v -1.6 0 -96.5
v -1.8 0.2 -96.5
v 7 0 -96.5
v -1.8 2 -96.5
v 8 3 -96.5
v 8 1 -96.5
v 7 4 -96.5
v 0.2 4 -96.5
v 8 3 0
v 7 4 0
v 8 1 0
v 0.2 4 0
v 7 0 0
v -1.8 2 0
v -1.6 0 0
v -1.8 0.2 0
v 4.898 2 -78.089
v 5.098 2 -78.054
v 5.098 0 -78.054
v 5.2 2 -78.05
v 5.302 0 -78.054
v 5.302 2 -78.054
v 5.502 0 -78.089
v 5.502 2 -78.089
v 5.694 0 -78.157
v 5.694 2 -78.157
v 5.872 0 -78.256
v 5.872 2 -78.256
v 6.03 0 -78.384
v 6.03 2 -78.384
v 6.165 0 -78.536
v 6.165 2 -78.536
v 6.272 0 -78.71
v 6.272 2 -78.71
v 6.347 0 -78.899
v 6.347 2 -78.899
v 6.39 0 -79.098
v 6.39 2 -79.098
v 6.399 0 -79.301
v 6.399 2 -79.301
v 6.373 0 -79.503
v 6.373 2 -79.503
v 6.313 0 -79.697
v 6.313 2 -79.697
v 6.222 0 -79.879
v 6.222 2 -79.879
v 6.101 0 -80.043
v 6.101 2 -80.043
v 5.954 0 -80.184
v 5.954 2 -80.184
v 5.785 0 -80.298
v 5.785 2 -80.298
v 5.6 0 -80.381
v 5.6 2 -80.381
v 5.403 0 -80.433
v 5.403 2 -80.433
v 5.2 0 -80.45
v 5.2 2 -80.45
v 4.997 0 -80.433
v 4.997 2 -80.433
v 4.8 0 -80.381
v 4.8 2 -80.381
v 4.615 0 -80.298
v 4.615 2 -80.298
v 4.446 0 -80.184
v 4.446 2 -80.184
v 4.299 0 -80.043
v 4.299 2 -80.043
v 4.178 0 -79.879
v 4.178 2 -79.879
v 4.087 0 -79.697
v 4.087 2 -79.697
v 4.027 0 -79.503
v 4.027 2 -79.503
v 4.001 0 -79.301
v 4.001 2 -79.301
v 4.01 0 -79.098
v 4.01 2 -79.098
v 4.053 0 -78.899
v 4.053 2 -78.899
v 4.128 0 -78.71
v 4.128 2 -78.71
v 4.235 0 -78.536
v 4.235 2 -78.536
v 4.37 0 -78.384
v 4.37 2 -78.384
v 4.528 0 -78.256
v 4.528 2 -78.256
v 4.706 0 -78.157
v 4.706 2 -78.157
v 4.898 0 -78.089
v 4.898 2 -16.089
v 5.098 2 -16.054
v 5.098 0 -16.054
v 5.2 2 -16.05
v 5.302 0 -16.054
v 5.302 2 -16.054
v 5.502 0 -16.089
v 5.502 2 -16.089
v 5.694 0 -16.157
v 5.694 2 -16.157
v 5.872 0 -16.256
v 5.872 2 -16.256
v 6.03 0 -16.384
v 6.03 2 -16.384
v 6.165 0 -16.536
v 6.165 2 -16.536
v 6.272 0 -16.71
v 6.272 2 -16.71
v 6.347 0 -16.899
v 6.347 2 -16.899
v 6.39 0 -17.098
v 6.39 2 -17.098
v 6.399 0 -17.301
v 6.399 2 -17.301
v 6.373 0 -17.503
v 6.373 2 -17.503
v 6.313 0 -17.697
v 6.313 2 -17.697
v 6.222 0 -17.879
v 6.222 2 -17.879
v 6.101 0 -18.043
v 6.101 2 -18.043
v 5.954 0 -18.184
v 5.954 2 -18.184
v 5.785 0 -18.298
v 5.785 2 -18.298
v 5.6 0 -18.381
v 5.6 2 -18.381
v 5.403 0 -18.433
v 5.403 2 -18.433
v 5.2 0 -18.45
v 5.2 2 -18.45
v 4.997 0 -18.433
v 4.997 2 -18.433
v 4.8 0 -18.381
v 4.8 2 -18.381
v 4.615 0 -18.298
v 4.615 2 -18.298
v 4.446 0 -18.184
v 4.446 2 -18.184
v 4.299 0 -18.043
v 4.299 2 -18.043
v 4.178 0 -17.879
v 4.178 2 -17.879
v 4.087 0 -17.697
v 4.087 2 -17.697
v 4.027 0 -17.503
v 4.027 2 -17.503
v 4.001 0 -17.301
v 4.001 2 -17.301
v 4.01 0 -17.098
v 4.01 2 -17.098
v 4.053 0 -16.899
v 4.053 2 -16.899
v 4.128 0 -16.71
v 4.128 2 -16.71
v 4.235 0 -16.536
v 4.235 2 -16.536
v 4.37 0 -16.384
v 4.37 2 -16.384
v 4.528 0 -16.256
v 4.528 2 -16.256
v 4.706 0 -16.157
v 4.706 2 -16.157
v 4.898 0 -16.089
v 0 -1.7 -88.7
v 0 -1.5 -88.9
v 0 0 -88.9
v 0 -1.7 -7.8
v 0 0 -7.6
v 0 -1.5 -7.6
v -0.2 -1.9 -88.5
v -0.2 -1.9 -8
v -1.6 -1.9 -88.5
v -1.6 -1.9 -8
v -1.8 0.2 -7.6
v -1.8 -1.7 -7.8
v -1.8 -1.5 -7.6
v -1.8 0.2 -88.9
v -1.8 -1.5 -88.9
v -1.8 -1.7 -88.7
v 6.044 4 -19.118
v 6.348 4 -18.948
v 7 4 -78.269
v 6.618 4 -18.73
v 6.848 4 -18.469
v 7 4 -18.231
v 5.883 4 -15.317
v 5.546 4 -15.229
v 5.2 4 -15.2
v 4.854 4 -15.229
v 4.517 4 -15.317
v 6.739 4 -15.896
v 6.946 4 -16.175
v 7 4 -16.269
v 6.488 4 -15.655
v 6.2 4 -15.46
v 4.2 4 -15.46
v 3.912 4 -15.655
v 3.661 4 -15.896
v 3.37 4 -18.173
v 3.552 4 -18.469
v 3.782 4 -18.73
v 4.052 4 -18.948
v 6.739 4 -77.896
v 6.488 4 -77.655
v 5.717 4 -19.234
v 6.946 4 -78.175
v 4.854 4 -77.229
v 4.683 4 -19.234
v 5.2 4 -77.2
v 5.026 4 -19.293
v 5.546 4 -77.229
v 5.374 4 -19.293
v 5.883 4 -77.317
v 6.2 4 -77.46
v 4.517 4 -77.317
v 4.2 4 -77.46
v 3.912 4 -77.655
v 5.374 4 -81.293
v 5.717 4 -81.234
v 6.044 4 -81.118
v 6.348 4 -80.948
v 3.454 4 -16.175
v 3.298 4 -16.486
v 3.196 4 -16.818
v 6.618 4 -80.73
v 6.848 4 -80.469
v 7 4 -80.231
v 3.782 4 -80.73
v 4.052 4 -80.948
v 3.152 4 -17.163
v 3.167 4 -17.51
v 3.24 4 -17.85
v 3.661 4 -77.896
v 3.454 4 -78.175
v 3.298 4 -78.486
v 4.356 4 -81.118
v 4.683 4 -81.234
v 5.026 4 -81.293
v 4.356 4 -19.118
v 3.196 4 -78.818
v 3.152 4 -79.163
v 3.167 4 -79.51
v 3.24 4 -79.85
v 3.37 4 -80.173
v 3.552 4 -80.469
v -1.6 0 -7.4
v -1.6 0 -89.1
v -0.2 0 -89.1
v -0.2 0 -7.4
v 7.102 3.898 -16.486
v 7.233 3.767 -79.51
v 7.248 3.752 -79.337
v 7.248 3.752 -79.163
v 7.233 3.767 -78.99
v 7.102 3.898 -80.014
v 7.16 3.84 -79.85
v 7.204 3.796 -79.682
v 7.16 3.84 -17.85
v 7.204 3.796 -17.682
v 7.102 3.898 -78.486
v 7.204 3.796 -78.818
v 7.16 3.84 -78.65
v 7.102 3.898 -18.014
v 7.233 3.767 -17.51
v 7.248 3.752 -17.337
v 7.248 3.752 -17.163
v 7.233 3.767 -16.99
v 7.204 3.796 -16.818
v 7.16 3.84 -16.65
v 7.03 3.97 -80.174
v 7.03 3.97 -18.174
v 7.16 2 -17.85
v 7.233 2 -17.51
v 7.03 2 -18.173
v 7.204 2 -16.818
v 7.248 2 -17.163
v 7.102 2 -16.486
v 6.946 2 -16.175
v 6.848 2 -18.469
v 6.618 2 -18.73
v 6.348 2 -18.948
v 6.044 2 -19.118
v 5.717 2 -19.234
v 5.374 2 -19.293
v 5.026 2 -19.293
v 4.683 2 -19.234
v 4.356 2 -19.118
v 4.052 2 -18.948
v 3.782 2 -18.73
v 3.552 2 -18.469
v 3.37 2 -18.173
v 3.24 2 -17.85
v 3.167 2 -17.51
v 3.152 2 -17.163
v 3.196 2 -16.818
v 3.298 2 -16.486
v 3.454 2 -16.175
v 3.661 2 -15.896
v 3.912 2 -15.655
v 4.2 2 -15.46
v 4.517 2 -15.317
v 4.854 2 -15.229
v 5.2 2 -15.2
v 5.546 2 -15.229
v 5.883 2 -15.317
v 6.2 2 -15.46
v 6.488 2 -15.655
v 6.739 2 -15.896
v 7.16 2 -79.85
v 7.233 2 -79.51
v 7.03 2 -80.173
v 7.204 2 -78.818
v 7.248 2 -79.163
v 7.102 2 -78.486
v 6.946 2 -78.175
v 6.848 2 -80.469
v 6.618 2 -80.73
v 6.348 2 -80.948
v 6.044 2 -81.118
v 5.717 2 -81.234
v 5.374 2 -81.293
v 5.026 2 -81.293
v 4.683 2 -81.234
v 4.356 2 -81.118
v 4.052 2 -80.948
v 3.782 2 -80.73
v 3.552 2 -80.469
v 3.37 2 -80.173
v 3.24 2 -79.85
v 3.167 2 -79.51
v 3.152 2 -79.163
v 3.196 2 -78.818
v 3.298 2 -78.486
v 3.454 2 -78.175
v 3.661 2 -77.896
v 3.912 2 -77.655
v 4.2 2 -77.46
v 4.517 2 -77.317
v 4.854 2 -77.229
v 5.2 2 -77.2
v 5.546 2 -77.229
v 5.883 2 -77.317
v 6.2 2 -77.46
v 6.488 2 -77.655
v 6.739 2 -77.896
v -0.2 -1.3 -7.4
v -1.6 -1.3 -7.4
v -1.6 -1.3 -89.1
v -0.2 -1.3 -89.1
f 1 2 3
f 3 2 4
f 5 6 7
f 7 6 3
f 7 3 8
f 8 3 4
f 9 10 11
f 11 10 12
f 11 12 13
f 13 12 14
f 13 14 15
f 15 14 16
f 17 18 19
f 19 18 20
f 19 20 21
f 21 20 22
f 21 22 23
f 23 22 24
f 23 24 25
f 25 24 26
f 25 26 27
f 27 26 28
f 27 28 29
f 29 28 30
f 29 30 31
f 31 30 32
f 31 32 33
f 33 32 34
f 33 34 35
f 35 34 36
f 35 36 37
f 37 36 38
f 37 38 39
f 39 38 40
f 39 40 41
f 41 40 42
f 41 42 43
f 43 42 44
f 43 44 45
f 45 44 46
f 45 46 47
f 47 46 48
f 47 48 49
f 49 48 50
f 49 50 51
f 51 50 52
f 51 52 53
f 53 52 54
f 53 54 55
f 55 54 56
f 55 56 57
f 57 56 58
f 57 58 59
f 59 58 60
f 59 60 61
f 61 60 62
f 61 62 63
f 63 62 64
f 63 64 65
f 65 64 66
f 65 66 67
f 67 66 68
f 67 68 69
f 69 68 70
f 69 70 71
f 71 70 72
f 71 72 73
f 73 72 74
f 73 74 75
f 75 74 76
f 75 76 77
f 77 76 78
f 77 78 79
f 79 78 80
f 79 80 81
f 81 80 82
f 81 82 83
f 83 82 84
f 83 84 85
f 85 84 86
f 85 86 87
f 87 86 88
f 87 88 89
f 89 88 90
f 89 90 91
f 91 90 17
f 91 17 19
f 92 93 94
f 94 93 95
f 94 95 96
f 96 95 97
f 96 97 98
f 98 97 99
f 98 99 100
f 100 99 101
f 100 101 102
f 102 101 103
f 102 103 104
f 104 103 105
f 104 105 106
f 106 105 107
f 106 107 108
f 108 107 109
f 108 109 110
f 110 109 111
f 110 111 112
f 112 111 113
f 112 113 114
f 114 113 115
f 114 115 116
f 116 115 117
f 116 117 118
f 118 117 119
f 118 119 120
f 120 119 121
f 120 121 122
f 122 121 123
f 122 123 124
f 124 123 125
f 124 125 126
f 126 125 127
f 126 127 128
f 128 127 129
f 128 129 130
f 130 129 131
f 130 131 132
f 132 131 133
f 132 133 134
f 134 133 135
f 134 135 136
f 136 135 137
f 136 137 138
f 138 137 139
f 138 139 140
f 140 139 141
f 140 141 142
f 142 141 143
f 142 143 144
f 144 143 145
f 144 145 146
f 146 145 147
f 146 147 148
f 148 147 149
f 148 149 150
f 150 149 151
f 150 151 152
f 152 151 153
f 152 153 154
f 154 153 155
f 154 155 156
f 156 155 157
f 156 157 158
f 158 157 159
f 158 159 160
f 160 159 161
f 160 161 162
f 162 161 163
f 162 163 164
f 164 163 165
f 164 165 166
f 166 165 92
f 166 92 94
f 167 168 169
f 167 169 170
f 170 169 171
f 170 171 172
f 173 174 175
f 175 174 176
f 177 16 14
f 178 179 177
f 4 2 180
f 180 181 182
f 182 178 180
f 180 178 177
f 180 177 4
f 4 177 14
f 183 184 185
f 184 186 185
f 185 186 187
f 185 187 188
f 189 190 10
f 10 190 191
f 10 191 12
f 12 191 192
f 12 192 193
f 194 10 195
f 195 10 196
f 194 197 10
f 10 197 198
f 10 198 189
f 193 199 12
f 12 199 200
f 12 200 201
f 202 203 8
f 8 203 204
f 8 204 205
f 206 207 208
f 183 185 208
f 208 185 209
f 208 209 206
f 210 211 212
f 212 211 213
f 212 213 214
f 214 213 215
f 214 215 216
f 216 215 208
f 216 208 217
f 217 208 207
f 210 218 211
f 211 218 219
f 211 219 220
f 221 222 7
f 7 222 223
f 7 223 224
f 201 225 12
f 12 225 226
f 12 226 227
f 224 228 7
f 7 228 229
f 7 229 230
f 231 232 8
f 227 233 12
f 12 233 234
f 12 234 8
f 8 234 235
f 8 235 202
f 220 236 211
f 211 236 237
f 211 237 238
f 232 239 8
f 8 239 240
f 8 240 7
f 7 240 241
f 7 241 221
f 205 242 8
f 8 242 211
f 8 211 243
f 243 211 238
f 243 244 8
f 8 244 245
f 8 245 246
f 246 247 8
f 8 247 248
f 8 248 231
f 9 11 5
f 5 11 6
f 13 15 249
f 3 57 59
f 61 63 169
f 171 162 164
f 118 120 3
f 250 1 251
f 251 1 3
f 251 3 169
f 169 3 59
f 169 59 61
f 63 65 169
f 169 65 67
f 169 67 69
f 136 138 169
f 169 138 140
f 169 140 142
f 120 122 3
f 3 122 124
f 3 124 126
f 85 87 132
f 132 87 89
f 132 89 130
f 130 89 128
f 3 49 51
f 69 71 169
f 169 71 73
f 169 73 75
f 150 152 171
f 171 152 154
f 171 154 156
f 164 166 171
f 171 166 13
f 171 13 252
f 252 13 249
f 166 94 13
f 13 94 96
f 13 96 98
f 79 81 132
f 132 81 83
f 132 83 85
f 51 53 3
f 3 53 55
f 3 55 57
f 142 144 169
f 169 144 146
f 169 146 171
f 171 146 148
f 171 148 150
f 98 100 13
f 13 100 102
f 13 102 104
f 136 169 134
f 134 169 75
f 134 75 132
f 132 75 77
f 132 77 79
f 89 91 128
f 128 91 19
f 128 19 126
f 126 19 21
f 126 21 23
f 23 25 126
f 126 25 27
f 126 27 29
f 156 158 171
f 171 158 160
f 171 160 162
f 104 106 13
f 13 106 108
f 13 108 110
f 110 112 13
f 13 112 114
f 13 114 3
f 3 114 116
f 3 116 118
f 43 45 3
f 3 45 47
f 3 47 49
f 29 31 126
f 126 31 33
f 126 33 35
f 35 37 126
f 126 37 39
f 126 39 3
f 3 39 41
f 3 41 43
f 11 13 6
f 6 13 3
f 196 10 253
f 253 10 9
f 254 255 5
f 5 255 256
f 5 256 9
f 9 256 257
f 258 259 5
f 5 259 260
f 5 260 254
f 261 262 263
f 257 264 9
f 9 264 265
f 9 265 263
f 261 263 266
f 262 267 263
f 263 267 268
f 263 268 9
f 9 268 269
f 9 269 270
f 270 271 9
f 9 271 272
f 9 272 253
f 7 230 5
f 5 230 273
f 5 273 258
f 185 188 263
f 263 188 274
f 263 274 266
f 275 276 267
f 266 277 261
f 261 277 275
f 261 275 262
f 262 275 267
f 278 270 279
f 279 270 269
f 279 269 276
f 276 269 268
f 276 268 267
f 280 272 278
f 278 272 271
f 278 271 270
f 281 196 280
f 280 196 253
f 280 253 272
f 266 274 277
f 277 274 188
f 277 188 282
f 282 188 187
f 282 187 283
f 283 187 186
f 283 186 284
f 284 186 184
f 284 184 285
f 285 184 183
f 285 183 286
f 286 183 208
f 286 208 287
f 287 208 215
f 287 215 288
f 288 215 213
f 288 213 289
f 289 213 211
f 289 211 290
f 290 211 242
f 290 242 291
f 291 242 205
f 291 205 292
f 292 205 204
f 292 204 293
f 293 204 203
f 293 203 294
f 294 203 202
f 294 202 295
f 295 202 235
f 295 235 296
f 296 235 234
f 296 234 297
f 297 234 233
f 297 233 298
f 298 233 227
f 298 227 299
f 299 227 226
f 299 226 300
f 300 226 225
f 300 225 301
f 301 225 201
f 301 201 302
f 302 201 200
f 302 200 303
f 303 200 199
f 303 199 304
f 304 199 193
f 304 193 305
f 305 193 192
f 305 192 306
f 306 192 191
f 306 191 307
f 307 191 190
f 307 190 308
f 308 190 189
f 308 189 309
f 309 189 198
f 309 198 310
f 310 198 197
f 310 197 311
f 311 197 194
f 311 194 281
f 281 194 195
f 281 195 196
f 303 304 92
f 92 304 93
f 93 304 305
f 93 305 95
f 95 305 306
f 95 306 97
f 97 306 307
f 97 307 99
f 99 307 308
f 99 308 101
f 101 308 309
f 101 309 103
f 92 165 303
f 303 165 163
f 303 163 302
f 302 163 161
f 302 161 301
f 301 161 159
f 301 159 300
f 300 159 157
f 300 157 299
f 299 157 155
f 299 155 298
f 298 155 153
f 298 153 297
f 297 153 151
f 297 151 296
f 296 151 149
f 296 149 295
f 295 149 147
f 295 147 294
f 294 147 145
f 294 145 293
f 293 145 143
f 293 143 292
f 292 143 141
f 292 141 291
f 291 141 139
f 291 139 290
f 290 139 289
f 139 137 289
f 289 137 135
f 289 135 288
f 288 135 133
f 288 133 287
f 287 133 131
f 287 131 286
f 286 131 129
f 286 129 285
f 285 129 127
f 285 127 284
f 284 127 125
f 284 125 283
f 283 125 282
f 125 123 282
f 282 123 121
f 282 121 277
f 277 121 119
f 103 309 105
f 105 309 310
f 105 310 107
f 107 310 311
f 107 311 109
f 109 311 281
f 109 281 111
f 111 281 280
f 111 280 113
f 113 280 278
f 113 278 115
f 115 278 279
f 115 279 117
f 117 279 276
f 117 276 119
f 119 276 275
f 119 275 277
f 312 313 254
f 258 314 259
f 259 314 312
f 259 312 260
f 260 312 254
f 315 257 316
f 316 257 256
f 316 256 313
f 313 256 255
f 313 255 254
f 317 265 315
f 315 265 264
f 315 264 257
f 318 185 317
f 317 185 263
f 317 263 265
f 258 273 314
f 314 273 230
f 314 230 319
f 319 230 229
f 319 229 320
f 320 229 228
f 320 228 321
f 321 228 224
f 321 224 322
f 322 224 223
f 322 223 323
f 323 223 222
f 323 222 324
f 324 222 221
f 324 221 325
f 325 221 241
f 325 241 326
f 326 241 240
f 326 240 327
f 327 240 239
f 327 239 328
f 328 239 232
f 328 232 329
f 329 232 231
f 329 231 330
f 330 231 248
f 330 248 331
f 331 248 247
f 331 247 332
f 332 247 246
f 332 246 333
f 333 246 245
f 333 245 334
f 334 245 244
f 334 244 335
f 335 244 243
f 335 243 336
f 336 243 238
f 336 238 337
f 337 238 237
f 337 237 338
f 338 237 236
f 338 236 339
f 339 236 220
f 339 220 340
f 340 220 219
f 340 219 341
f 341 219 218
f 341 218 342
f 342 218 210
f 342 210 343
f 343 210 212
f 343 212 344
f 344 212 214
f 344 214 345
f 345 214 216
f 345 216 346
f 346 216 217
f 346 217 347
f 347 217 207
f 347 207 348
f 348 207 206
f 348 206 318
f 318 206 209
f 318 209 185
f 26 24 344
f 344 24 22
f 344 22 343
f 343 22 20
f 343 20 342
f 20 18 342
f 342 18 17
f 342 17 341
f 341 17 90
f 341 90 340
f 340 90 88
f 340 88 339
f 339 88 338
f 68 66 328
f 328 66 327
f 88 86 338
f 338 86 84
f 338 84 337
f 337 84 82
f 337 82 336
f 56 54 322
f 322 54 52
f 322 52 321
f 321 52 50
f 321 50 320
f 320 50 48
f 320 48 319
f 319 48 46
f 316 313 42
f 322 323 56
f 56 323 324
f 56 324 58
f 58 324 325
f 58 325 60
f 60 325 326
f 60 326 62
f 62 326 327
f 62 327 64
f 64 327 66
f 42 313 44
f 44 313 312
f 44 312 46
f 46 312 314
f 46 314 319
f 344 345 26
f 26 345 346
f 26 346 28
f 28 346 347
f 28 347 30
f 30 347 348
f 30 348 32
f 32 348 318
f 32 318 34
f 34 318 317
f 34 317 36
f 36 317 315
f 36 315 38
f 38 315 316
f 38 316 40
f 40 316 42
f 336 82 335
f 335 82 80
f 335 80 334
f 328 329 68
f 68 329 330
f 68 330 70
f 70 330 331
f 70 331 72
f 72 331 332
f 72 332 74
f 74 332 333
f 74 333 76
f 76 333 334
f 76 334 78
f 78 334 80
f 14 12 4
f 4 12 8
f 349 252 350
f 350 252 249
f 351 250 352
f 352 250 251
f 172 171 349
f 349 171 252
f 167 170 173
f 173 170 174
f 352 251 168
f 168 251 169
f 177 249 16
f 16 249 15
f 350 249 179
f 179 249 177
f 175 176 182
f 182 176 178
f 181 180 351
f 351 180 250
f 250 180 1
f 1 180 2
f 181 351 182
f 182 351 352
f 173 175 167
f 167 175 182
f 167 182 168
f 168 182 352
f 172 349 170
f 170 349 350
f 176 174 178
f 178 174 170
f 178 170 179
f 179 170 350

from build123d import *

# Parameters (mm, degrees)
EXTRUDE_1_DEPTH          = 96.5
CHAMFER_1_SIZE           = 1
CHAMFER_2_SIZE           = 1
CUT_EXTRUDE_1_DEPTH      = 98.010617976
CUT_EXTRUDE_1_DEPTH_BACK = 10
SKETCH_2_R               = 1.2
SKETCH_2_3_R             = 2.05
CUT_EXTRUDE_2_DEPTH      = 2
CHAMFER_3_SIZE           = 2
SKETCH_3_W               = 1.8
SKETCH_3_H               = 7.4
CUT_EXTRUDE_3_DEPTH      = 1.9
CHAMFER_4_SIZE           = 0.2
CHAMFER_5_SIZE           = 0.6


with BuildPart() as part:
    # 草图1 → 凸台-拉伸1 (new body)
    with BuildSketch(Plane.XY):
        Polygon((0, 0), (8, 0), (8, 4), (0, 4), (-1.8, 4), (-1.8, -1.9), (0, -1.9), align=None)
    extrude(amount=-EXTRUDE_1_DEPTH)

    # 倒角1
    chamfer_1_edges = [part.edges().sort_by_distance(p)[0] for p in [
        (8, 0, -48.25),
    ]]
    chamfer(chamfer_1_edges, length=CHAMFER_1_SIZE)

    # 倒角2
    chamfer_2_edges = [part.edges().sort_by_distance(p)[0] for p in [
        (8, 4, -48.25),
    ]]
    chamfer(chamfer_2_edges, length=CHAMFER_2_SIZE)

    # 草图2 → 切除-拉伸1 (cut, two sides: drawn at the far end of the back side and taken through both)
    with BuildSketch(Plane(origin=(0, 4, 0), x_dir=(1, 0, 0), z_dir=(0, 1, 0)).offset(-CUT_EXTRUDE_1_DEPTH_BACK)):
        with Locations(Location((5.2, 79.25, 0), (0, 0, 90))):
            Circle(SKETCH_2_R)
        with Locations(Location((5.2, 17.25, 0), (0, 0, 90))):
            Circle(SKETCH_2_R)
    extrude(amount=CUT_EXTRUDE_1_DEPTH + CUT_EXTRUDE_1_DEPTH_BACK, mode=Mode.SUBTRACT)

    # 草图2<3> → 切除-拉伸2 (cut)
    with BuildSketch(Plane(origin=(0, 4, 0), x_dir=(1, 0, 0), z_dir=(0, 1, 0))):
        with Locations(Location((5.2, 79.25, 0), (0, 0, 270))):
            Circle(SKETCH_2_3_R)
        with Locations(Location((5.2, 17.25, 0), (0, 0, 270))):
            Circle(SKETCH_2_3_R)
    extrude(amount=-CUT_EXTRUDE_2_DEPTH, mode=Mode.SUBTRACT)

    # 倒角3
    chamfer_3_edges = [part.edges().sort_by_distance(p)[0] for p in [
        (-1.8, 4, -48.25),
    ]]
    chamfer(chamfer_3_edges, length=CHAMFER_3_SIZE)

    # 草图3 → 切除-拉伸3 (cut)
    with BuildSketch(Plane.XZ.offset(1.9)):
        with Locations((-0.9, -92.8)):
            Rectangle(SKETCH_3_W, SKETCH_3_H)
        with Locations((-0.9, -3.7)):
            Rectangle(SKETCH_3_W, SKETCH_3_H)
    extrude(amount=-CUT_EXTRUDE_3_DEPTH, mode=Mode.SUBTRACT)

    # 倒角4
    chamfer_4_edges = [part.edges().sort_by_distance(p)[0] for p in [
        (-1.8, -1.9, -48.25),
        (0, -1.9, -48.25),
        (-1.8, -0.95, -89.1),
        (0, -0.95, -89.1),
        (-1.8, 0, -92.8),
        (-1.8, -0.95, -7.4),
        (0, -0.95, -7.4),
        (-1.8, 0, -3.7),
    ]]
    chamfer(chamfer_4_edges, length=CHAMFER_4_SIZE)

    # 倒角5
    # the kernel refuses this chamfer: 0.6 mm, written as the material it takes off along each edge
    with BuildSketch(Plane(origin=(1.343009793, -1.9, -89.1), x_dir=(0, 0.9996219169112965, -0.027495876610595982), z_dir=(-1, 0, 0))) as chamfer_5_piece_1:
        Polygon((CHAMFER_5_SIZE * 0.999621916911, -CHAMFER_5_SIZE * 0.0274958766106), (-CHAMFER_5_SIZE * 0.0274958766106, -CHAMFER_5_SIZE * 0.999621916911), (0, 0), align=None)
    extrude(amount=4.486019586, mode=Mode.SUBTRACT)
    with BuildSketch(Plane(origin=(1.343009793, -1.9, -7.4), x_dir=(0, 0.9996219169112968, 0.027495876610585925), z_dir=(-1, 0, 0))) as chamfer_5_piece_2:
        Polygon((CHAMFER_5_SIZE * 0.999621916911, CHAMFER_5_SIZE * 0.0274958766106), (-CHAMFER_5_SIZE * 0.0274958766106, CHAMFER_5_SIZE * 0.999621916911), (0, 0), align=None)
    extrude(amount=4.486019586, mode=Mode.SUBTRACT)


solid = part.part
